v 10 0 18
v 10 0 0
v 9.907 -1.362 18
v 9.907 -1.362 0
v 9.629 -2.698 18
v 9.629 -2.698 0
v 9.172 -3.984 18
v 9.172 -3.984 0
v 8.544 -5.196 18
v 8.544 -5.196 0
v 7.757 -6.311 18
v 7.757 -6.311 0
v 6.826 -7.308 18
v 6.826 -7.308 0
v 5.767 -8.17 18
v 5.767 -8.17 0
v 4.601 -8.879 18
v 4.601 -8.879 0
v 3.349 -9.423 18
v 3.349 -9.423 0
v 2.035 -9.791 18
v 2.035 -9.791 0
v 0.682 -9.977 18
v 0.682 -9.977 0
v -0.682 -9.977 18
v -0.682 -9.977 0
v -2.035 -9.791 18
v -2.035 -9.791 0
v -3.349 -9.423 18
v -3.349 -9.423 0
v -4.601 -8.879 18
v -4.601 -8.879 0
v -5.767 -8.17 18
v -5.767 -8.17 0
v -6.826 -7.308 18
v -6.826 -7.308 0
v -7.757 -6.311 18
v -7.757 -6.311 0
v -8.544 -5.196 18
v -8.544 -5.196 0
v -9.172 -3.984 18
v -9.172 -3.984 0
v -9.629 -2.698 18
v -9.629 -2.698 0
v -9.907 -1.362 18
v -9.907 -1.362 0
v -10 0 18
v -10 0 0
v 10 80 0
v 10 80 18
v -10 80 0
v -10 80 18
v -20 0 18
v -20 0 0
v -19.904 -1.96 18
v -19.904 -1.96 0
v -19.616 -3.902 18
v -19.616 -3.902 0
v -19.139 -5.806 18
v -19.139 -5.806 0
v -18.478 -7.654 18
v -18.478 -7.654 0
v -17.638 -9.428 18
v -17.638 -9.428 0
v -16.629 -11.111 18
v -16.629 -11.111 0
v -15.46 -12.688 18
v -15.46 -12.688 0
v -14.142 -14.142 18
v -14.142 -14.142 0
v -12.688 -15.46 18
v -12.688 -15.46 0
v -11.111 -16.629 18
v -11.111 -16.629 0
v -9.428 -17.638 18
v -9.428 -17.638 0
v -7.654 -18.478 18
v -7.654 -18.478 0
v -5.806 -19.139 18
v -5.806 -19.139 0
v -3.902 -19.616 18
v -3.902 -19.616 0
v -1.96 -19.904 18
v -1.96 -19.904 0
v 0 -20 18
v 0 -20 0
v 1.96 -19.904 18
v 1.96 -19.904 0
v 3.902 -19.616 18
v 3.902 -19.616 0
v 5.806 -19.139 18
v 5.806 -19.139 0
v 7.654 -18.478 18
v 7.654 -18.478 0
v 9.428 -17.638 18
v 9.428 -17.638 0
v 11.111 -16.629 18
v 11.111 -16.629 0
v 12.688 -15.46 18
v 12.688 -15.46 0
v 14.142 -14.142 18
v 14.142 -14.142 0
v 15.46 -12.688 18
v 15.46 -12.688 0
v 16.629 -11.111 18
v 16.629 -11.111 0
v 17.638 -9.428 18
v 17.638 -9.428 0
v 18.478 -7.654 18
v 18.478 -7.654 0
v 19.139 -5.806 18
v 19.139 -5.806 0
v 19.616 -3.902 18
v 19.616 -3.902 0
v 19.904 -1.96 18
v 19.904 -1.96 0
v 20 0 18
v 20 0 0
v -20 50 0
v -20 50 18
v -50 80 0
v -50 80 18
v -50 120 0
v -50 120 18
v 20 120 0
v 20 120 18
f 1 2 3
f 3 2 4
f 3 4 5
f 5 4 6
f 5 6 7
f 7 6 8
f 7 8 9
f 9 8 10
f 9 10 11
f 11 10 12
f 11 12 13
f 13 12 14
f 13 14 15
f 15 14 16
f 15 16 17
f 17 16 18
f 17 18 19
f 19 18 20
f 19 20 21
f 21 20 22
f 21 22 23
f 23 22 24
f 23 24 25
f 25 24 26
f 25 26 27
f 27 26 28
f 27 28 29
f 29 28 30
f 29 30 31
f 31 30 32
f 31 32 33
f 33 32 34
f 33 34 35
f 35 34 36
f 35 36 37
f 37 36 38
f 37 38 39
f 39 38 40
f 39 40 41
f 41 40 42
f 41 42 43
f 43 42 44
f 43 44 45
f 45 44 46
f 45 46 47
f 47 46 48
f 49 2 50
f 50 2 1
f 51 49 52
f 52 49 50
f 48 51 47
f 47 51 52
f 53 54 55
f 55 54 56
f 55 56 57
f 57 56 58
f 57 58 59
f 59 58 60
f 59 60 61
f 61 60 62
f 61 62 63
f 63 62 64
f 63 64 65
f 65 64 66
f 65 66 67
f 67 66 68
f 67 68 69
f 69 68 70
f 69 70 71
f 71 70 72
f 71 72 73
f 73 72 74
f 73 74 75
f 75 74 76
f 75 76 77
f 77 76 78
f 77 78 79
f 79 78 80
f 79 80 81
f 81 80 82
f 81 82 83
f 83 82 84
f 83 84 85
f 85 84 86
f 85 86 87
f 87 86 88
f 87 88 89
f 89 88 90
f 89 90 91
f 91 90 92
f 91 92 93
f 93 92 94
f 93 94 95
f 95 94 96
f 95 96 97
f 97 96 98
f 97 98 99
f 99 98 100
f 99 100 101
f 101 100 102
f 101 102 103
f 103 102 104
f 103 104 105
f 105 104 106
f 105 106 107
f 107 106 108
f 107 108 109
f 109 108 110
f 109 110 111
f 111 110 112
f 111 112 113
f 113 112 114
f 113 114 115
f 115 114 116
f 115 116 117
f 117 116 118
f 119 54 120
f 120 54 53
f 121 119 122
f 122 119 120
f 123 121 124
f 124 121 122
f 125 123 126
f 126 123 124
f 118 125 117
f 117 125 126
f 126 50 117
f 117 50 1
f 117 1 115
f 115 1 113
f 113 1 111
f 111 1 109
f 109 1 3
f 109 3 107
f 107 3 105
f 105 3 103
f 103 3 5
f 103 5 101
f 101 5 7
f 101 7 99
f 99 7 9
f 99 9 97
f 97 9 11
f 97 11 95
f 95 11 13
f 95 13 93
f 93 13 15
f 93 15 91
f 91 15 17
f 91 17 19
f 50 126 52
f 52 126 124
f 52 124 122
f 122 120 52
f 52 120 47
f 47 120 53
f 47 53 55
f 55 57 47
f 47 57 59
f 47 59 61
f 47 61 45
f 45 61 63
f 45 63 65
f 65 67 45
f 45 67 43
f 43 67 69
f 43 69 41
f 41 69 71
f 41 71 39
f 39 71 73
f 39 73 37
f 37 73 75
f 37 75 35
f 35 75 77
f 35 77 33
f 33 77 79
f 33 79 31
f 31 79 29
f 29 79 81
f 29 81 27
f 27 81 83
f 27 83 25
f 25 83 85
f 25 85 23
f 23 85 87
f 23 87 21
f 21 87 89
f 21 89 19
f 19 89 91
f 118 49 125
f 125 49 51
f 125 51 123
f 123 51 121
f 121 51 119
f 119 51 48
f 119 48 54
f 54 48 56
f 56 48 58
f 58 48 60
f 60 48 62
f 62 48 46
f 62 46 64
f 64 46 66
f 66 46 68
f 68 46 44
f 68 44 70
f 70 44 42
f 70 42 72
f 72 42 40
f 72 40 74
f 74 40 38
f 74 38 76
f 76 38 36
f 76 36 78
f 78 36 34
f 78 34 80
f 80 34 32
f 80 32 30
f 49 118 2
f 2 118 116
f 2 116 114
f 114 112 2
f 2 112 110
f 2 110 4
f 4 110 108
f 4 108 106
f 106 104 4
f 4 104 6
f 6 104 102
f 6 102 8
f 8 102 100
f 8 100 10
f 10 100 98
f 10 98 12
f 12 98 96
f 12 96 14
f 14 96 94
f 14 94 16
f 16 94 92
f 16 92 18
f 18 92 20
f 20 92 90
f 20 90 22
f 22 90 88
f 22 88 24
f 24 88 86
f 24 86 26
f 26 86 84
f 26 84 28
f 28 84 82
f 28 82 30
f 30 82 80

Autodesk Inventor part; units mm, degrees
ref_plane "YZ Plane" through (0, 0, 0) normal (1, 0, 0) x (0, 1, 0)
ref_plane "XZ Plane" through (0, 0, 0) normal (0, 1, 0) x (-1, 0, 0)
ref_plane "XY Plane" through (0, 0, 0) normal (0, 0, 1) x (1, 0, 0)
sketch "Sketch1" plane through (0, 0, 0) normal (0, 0, 1) x (1, 0, 0)
  line L0 (0, 0) -> (0, 80) construction
  line L1 (0, 80) -> (10, 80) construction
  line L2 (0, 80) -> (-10, 80) construction
  line L3 (-10, 80) -> (10, 80)
  line L4 (10, 80) -> (10, 0)
  line L5 (-10, 80) -> (-10, 0)
  arc A0 (-10, 0) -> (10, 0) centre (0, 0) ccw
  line L6 (10, 0) -> (20, 0) construction
  line L7 (20, 0) -> (20, 120)
  line L8 (20, 120) -> (-50, 120)
  line L9 (-50, 120) -> (-50, 80)
  line L10 (-50, 120) -> (-20, 120) construction
  arc A1 (-20, 0) -> (20, 0) centre (0, 0) ccw
  line L11 (-20, 0) -> (-20, 50)
  line L12 (-20, 50) -> (-50, 80)
  dimension "d0" = 80
  dimension "d3" = 10
  dimension "d4" = 120
  dimension "d5" = 70
  dimension "d6" = 40
  dimension "d7" = 30
  dimension "d8" = 20
  dimension "d9" = 50
extrude "Extrusion1" add sketch "Sketch1" along normal blind 18
properties part number "guide_3DPrint"
